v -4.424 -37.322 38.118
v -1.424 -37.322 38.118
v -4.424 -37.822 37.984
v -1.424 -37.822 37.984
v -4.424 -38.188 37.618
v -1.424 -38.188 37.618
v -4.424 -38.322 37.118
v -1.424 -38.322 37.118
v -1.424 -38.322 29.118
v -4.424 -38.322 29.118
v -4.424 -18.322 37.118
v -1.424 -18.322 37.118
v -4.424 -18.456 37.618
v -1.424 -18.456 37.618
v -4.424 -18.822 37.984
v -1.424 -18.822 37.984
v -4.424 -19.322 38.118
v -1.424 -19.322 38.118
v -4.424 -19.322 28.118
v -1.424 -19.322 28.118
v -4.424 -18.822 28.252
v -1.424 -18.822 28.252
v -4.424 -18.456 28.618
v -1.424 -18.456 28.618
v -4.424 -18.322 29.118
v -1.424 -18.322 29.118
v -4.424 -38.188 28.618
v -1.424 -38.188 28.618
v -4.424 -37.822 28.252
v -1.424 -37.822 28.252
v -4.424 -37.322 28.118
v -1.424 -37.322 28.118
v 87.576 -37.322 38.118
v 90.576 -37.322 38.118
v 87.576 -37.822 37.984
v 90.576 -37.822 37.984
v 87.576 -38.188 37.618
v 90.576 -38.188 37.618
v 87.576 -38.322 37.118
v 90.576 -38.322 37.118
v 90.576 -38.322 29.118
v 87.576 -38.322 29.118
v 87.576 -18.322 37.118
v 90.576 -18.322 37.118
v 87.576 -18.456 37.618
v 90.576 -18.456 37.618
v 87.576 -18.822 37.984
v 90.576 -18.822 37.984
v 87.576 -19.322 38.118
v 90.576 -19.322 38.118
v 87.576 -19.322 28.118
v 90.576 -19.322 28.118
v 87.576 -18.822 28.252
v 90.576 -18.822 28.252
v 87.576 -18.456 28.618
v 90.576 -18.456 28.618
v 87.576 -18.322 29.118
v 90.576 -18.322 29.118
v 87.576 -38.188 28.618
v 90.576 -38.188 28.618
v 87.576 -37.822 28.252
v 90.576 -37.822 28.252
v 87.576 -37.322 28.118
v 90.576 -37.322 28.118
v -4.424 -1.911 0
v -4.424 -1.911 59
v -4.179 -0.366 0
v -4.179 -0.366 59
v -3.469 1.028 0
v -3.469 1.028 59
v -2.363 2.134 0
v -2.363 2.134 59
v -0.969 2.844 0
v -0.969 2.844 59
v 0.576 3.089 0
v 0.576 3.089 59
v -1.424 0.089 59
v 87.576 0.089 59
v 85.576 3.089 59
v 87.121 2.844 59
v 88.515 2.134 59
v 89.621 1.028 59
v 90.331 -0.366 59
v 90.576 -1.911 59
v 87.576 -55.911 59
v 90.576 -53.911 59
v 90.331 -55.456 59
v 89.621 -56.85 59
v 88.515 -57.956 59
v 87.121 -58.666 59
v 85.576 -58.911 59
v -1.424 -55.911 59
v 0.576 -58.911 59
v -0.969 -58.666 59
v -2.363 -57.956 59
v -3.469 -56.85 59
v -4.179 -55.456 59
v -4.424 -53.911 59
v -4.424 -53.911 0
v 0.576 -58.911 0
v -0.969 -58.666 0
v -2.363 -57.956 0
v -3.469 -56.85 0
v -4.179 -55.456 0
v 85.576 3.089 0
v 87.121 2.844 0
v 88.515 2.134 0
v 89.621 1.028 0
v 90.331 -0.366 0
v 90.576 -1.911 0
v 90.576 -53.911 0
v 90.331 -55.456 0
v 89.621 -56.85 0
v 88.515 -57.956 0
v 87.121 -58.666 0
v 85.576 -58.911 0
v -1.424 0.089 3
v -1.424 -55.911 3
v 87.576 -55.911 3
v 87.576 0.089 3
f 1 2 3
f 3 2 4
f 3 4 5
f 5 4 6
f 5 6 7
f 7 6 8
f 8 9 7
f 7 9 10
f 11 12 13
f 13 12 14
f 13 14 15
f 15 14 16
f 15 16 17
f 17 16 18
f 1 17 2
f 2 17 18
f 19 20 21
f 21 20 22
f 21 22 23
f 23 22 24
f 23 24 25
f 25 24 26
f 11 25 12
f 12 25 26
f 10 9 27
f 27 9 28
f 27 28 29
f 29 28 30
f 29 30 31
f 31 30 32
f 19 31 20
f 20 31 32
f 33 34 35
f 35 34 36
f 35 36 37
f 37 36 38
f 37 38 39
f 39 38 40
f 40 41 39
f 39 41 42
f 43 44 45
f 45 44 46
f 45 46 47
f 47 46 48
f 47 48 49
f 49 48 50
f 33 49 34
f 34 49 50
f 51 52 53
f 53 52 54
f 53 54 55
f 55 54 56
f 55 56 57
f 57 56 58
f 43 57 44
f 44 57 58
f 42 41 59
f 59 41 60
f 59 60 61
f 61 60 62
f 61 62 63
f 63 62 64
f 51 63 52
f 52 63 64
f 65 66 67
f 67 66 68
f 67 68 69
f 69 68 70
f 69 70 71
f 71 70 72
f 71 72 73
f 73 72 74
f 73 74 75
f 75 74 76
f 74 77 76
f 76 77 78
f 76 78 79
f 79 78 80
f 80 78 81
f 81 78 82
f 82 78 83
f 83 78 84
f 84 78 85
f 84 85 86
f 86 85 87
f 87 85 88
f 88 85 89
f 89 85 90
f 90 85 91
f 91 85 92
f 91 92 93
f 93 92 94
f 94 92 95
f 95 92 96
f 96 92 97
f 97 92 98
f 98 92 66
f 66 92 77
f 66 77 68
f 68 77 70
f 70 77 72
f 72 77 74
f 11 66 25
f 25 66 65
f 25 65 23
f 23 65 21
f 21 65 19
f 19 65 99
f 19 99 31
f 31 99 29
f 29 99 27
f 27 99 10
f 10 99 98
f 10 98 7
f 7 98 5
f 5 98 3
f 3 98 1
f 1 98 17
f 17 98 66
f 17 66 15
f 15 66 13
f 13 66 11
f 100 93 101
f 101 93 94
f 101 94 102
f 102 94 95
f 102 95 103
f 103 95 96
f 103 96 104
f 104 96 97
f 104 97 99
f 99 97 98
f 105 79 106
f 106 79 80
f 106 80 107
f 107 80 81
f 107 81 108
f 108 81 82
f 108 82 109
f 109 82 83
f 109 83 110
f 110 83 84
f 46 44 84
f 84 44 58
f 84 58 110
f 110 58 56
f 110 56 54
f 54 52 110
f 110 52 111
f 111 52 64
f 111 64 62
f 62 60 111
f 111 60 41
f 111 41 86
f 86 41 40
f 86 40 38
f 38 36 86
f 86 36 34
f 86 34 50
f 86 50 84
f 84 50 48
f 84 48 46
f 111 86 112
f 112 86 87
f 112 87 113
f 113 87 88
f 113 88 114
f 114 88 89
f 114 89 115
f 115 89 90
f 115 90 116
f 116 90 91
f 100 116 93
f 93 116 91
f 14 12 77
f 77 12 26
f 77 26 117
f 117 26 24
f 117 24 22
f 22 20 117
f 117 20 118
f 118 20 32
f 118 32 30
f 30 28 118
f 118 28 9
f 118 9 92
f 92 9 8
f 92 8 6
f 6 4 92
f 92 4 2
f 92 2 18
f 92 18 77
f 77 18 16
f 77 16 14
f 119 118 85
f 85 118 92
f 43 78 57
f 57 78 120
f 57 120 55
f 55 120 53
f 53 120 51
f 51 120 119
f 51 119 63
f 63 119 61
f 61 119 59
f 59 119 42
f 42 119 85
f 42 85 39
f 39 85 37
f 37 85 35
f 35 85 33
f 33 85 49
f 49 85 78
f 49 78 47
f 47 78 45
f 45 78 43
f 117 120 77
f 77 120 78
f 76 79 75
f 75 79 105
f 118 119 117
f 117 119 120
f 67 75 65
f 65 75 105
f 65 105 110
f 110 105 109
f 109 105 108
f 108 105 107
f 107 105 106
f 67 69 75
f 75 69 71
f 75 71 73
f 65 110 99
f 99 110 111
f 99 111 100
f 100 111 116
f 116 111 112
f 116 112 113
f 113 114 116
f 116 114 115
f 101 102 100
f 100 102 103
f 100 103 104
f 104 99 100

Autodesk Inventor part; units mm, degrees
ref_plane "YZ Plane" through (0, 0, 0) normal (1, 0, 0) x (0, 1, 0)
ref_plane "XZ Plane" through (0, 0, 0) normal (0, 1, 0) x (-1, 0, 0)
ref_plane "XY Plane" through (0, 0, 0) normal (0, 0, 1) x (1, 0, 0)
sketch "Skizze1" plane through (0, 0, 0) normal (0, 0, 1) x (1, 0, 0)
  line L0 (-4.424, 3.089) -> (90.576, 3.089)
  line L1 (90.576, 3.089) -> (90.576, -58.911)
  line L2 (90.576, -58.911) -> (-4.424, -58.911)
  line L3 (-4.424, -58.911) -> (-4.424, 3.089)
  line L4 (-1.424, 0.089) -> (87.576, 0.089)
  line L5 (87.576, 0.089) -> (87.576, -55.911)
  line L6 (87.576, -55.911) -> (-1.424, -55.911)
  line L7 (-1.424, -55.911) -> (-1.424, 0.089)
  point P0 (0, 0)
  dimension "d0" = 95
  dimension "d1" = 62
  dimension "d2" = 89
  dimension "d3" = 56
  dimension "d4" = 3
  dimension "d5" = 3
extrude "Extrusion1" add sketch "Skizze1" along normal blind 3 contours L0 L1 L2 L3 | L4 L5 L6 L7
sketch "Skizze2" plane through (0, 0, 3) normal (0, 0, 1) x (1, 0, 0)
  line L0 (90.576, 3.089) -> (-4.424, 3.089) projected
  line L1 (90.576, -58.911) -> (90.576, 3.089) projected
  line L2 (-4.424, 3.089) -> (90.576, 3.089)
  line L3 (90.576, 3.089) -> (90.576, -58.911)
  line L4 (90.576, -58.911) -> (-4.424, -58.911)
  line L5 (-4.424, -58.911) -> (-4.424, 3.089)
  line L6 (-4.424, 3.089) -> (90.576, 3.089)
  line L7 (90.576, 3.089) -> (90.576, -58.911)
  line L8 (90.576, -58.911) -> (-4.424, -58.911)
  line L9 (-4.424, -58.911) -> (-4.424, 3.089)
  line L10 (-1.424, 0.089) -> (87.576, 0.089)
  line L11 (87.576, 0.089) -> (87.576, -55.911)
  line L12 (87.576, -55.911) -> (-1.424, -55.911)
  line L13 (-1.424, -55.911) -> (-1.424, 0.089)
  point P0 (0, 0)
  point P1 (-4.124, -58.911)
  point P2 (4.776, -58.911)
  dimension "d8" = 89
  dimension "d9" = 56
  dimension "d10" = 3
  dimension "d11" = 3
extrude "Extrusion2" add sketch "Skizze2" along normal blind 56
fillet "Rundung1" radius 5 4 edges at (90.576, -58.911, 29.5) (90.576, 3.089, 29.5) (-4.424, -58.911, 29.5) (-4.424, 3.089, 29.5)
sketch "Skizze3" plane through (90.576, -53.911, 0) normal (1, 0, 0) x (0, 0, -1)
  line L0 (-38.1185, 15.5893) -> (-28.1185, 15.5893)
  line L1 (-28.1185, 15.5893) -> (-28.1185, 35.5893)
  line L2 (-28.1185, 35.5893) -> (-38.1185, 35.5893)
  line L3 (-38.1185, 35.5893) -> (-38.1185, 15.5893)
  point P0 (0, 53.911)
  dimension "d15" = 10
  dimension "d16" = 20
extrude "Extrusion3" cut sketch "Skizze3" against normal blind 100
fillet "Rundung2" radius 1 8 edges at (89.076, -38.3217, 28.1185) (89.076, -18.3217, 28.1185) (89.076, -18.3217, 38.1185) (89.076, -38.3217, 38.1185) (-2.924, -38.3217, 28.1185) (-2.924, -18.3217, 28.1185) (-2.924, -18.3217, 38.1185) (-2.924, -38.3217, 38.1185)
equation "\"d12\" = d9"
properties part number "bottom"
